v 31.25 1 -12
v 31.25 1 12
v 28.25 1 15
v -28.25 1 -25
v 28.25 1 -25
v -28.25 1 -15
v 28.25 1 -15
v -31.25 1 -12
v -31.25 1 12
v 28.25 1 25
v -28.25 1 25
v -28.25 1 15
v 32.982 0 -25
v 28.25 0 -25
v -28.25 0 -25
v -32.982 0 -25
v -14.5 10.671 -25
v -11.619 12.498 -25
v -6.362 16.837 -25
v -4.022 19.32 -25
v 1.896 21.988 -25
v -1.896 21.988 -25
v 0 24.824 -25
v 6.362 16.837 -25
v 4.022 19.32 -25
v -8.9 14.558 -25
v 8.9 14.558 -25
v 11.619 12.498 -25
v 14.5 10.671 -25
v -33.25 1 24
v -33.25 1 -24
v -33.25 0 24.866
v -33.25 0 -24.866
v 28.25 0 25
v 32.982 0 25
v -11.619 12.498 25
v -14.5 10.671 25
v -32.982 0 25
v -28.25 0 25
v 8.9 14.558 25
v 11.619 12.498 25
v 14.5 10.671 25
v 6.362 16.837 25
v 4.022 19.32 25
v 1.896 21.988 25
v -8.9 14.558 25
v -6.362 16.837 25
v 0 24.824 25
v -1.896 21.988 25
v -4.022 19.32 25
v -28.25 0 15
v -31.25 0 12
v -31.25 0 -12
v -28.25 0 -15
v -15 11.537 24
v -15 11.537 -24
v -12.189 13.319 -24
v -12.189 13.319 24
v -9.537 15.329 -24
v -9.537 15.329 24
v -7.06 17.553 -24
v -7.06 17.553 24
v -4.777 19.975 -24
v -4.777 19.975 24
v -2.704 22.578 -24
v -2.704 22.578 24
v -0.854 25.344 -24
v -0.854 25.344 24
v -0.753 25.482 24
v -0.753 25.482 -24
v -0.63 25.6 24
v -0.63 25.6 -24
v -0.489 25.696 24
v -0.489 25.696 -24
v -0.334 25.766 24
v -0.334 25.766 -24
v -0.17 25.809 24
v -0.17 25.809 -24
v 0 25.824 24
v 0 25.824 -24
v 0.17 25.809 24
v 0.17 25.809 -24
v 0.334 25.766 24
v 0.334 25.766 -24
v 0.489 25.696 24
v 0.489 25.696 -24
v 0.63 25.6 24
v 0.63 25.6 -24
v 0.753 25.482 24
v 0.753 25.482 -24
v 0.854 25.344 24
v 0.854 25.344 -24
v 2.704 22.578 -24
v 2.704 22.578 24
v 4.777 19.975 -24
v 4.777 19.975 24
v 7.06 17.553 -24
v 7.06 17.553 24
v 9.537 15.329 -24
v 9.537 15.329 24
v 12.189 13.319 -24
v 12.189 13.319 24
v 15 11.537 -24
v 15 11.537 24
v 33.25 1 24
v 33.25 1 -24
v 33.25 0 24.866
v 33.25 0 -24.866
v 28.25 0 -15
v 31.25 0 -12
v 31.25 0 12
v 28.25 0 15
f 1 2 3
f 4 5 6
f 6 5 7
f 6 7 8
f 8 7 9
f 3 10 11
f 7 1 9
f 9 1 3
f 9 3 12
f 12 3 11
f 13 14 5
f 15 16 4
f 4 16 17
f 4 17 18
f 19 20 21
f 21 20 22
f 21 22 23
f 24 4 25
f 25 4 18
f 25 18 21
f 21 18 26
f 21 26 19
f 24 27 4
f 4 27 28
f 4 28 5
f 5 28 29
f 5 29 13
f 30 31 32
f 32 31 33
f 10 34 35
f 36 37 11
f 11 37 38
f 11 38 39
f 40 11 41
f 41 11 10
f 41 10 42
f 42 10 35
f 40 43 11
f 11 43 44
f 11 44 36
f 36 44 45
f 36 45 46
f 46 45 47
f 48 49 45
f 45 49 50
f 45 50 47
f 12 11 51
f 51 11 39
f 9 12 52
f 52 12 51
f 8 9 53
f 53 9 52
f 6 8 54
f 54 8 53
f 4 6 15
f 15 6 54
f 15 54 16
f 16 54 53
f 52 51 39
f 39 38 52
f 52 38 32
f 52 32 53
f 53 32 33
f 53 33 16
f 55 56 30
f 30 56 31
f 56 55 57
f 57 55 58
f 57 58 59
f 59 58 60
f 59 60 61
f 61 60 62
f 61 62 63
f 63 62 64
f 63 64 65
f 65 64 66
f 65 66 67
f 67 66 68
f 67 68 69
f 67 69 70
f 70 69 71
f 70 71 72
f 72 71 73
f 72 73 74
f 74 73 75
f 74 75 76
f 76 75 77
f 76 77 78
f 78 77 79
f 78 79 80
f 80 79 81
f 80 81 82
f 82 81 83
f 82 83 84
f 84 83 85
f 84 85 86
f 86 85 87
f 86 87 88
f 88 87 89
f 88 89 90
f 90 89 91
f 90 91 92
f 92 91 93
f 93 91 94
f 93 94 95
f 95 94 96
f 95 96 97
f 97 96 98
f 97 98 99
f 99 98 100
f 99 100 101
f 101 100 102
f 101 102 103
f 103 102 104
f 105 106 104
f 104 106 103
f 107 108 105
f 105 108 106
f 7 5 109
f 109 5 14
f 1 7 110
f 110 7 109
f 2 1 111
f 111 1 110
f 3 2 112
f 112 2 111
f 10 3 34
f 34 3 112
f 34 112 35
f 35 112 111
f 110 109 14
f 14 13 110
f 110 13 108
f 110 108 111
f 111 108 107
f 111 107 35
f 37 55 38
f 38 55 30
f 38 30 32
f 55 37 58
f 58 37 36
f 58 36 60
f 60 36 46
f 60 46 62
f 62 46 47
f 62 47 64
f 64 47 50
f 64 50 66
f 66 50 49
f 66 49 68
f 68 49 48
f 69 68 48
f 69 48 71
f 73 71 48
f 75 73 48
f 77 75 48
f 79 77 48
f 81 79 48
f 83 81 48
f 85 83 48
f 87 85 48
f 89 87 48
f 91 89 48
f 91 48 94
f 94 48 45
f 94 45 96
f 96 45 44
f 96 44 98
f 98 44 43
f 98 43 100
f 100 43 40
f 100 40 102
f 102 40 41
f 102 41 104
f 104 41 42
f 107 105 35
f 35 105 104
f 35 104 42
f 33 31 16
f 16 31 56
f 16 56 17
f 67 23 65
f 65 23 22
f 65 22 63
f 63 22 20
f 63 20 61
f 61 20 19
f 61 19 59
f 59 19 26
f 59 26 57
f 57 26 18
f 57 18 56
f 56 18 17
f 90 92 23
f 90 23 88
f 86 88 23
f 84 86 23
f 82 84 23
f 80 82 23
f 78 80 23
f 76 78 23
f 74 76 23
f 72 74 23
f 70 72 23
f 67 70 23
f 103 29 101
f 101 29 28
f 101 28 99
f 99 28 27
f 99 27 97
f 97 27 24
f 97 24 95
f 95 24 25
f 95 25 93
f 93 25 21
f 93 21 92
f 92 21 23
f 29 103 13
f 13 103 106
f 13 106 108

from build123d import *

# Parameters (mm, degrees)
BOSS_EXTRUDE1_DEPTH   = 1
BOSS_EXTRUDE1_2_DEPTH = 1
BOSS_EXTRUDE2_DEPTH   = 50
CHAMFER1_SIZE         = 1


with BuildPart() as part:
    # Sketch1 → Boss-Extrude1 (new body)
    with BuildSketch(Plane(origin=(0, 0, 0), x_dir=(1, 0, 0), z_dir=(0, 1, 0))):
        Polygon((-28.25, 25), (-28.25, 15), (-31.25, 12), (-31.25, -12), (-28.25, -15), (-28.25, -25), (-33.25, -25), (-33.25, 25), align=None)
    extrude(amount=BOSS_EXTRUDE1_DEPTH)



with BuildPart() as body_2:
    # Sketch1 → Boss-Extrude1 2 (new body)
    with BuildSketch(Plane(origin=(0, 0, 0), x_dir=(1, 0, 0), z_dir=(0, 1, 0))):
        Polygon((33.25, 25), (28.25, 25), (28.25, 15), (31.25, 12), (31.25, -12), (28.25, -15), (28.25, -25), (33.25, -25), align=None)
    extrude(amount=BOSS_EXTRUDE1_2_DEPTH)


with BuildPart() as part_1:
    add(part.part)

    add(body_2.part)  # Boss-Extrude2 merges body 2
    # Sketch2 → Boss-Extrude2 (add)
    with BuildSketch(Plane.XY.offset(25)):
        with BuildLine():
            Line((-33.25, 1), (33.25, 1))
            Line((33.25, 1), (15, 11.536642413))
            ThreePointArc((15, 11.536642413), (7.060428276, 17.552838357), (0.853658537, 25.344335145))
            ThreePointArc((0.853658537, 25.344335145), (0, 25.82350206), (-0.853658537, 25.344335145))
            ThreePointArc((-0.853658537, 25.344335145), (-7.060428276, 17.552838357), (-15, 11.536642413))
            Line((-15, 11.536642413), (-33.25, 1))
        make_face()
    extrude(amount=-BOSS_EXTRUDE2_DEPTH)

    # Chamfer1
    chamfer1_edges = [part_1.edges().sort_by_distance(p)[0] for p in [
        (24.125, 6.268321206, -25),
        (24.125, 6.268321206, 25),
        (7.060428276, 17.552838357, -25),
        (7.060428276, 17.552838357, 25),
        (0, 25.82350206, -25),
        (0, 25.82350206, 25),
        (-24.125, 6.268321206, -25),
        (-24.125, 6.268321206, 25),
        (-7.060428276, 17.552838357, -25),
        (-7.060428276, 17.552838357, 25),
    ]]
    chamfer(chamfer1_edges, length=CHAMFER1_SIZE)


solid = part_1.part
